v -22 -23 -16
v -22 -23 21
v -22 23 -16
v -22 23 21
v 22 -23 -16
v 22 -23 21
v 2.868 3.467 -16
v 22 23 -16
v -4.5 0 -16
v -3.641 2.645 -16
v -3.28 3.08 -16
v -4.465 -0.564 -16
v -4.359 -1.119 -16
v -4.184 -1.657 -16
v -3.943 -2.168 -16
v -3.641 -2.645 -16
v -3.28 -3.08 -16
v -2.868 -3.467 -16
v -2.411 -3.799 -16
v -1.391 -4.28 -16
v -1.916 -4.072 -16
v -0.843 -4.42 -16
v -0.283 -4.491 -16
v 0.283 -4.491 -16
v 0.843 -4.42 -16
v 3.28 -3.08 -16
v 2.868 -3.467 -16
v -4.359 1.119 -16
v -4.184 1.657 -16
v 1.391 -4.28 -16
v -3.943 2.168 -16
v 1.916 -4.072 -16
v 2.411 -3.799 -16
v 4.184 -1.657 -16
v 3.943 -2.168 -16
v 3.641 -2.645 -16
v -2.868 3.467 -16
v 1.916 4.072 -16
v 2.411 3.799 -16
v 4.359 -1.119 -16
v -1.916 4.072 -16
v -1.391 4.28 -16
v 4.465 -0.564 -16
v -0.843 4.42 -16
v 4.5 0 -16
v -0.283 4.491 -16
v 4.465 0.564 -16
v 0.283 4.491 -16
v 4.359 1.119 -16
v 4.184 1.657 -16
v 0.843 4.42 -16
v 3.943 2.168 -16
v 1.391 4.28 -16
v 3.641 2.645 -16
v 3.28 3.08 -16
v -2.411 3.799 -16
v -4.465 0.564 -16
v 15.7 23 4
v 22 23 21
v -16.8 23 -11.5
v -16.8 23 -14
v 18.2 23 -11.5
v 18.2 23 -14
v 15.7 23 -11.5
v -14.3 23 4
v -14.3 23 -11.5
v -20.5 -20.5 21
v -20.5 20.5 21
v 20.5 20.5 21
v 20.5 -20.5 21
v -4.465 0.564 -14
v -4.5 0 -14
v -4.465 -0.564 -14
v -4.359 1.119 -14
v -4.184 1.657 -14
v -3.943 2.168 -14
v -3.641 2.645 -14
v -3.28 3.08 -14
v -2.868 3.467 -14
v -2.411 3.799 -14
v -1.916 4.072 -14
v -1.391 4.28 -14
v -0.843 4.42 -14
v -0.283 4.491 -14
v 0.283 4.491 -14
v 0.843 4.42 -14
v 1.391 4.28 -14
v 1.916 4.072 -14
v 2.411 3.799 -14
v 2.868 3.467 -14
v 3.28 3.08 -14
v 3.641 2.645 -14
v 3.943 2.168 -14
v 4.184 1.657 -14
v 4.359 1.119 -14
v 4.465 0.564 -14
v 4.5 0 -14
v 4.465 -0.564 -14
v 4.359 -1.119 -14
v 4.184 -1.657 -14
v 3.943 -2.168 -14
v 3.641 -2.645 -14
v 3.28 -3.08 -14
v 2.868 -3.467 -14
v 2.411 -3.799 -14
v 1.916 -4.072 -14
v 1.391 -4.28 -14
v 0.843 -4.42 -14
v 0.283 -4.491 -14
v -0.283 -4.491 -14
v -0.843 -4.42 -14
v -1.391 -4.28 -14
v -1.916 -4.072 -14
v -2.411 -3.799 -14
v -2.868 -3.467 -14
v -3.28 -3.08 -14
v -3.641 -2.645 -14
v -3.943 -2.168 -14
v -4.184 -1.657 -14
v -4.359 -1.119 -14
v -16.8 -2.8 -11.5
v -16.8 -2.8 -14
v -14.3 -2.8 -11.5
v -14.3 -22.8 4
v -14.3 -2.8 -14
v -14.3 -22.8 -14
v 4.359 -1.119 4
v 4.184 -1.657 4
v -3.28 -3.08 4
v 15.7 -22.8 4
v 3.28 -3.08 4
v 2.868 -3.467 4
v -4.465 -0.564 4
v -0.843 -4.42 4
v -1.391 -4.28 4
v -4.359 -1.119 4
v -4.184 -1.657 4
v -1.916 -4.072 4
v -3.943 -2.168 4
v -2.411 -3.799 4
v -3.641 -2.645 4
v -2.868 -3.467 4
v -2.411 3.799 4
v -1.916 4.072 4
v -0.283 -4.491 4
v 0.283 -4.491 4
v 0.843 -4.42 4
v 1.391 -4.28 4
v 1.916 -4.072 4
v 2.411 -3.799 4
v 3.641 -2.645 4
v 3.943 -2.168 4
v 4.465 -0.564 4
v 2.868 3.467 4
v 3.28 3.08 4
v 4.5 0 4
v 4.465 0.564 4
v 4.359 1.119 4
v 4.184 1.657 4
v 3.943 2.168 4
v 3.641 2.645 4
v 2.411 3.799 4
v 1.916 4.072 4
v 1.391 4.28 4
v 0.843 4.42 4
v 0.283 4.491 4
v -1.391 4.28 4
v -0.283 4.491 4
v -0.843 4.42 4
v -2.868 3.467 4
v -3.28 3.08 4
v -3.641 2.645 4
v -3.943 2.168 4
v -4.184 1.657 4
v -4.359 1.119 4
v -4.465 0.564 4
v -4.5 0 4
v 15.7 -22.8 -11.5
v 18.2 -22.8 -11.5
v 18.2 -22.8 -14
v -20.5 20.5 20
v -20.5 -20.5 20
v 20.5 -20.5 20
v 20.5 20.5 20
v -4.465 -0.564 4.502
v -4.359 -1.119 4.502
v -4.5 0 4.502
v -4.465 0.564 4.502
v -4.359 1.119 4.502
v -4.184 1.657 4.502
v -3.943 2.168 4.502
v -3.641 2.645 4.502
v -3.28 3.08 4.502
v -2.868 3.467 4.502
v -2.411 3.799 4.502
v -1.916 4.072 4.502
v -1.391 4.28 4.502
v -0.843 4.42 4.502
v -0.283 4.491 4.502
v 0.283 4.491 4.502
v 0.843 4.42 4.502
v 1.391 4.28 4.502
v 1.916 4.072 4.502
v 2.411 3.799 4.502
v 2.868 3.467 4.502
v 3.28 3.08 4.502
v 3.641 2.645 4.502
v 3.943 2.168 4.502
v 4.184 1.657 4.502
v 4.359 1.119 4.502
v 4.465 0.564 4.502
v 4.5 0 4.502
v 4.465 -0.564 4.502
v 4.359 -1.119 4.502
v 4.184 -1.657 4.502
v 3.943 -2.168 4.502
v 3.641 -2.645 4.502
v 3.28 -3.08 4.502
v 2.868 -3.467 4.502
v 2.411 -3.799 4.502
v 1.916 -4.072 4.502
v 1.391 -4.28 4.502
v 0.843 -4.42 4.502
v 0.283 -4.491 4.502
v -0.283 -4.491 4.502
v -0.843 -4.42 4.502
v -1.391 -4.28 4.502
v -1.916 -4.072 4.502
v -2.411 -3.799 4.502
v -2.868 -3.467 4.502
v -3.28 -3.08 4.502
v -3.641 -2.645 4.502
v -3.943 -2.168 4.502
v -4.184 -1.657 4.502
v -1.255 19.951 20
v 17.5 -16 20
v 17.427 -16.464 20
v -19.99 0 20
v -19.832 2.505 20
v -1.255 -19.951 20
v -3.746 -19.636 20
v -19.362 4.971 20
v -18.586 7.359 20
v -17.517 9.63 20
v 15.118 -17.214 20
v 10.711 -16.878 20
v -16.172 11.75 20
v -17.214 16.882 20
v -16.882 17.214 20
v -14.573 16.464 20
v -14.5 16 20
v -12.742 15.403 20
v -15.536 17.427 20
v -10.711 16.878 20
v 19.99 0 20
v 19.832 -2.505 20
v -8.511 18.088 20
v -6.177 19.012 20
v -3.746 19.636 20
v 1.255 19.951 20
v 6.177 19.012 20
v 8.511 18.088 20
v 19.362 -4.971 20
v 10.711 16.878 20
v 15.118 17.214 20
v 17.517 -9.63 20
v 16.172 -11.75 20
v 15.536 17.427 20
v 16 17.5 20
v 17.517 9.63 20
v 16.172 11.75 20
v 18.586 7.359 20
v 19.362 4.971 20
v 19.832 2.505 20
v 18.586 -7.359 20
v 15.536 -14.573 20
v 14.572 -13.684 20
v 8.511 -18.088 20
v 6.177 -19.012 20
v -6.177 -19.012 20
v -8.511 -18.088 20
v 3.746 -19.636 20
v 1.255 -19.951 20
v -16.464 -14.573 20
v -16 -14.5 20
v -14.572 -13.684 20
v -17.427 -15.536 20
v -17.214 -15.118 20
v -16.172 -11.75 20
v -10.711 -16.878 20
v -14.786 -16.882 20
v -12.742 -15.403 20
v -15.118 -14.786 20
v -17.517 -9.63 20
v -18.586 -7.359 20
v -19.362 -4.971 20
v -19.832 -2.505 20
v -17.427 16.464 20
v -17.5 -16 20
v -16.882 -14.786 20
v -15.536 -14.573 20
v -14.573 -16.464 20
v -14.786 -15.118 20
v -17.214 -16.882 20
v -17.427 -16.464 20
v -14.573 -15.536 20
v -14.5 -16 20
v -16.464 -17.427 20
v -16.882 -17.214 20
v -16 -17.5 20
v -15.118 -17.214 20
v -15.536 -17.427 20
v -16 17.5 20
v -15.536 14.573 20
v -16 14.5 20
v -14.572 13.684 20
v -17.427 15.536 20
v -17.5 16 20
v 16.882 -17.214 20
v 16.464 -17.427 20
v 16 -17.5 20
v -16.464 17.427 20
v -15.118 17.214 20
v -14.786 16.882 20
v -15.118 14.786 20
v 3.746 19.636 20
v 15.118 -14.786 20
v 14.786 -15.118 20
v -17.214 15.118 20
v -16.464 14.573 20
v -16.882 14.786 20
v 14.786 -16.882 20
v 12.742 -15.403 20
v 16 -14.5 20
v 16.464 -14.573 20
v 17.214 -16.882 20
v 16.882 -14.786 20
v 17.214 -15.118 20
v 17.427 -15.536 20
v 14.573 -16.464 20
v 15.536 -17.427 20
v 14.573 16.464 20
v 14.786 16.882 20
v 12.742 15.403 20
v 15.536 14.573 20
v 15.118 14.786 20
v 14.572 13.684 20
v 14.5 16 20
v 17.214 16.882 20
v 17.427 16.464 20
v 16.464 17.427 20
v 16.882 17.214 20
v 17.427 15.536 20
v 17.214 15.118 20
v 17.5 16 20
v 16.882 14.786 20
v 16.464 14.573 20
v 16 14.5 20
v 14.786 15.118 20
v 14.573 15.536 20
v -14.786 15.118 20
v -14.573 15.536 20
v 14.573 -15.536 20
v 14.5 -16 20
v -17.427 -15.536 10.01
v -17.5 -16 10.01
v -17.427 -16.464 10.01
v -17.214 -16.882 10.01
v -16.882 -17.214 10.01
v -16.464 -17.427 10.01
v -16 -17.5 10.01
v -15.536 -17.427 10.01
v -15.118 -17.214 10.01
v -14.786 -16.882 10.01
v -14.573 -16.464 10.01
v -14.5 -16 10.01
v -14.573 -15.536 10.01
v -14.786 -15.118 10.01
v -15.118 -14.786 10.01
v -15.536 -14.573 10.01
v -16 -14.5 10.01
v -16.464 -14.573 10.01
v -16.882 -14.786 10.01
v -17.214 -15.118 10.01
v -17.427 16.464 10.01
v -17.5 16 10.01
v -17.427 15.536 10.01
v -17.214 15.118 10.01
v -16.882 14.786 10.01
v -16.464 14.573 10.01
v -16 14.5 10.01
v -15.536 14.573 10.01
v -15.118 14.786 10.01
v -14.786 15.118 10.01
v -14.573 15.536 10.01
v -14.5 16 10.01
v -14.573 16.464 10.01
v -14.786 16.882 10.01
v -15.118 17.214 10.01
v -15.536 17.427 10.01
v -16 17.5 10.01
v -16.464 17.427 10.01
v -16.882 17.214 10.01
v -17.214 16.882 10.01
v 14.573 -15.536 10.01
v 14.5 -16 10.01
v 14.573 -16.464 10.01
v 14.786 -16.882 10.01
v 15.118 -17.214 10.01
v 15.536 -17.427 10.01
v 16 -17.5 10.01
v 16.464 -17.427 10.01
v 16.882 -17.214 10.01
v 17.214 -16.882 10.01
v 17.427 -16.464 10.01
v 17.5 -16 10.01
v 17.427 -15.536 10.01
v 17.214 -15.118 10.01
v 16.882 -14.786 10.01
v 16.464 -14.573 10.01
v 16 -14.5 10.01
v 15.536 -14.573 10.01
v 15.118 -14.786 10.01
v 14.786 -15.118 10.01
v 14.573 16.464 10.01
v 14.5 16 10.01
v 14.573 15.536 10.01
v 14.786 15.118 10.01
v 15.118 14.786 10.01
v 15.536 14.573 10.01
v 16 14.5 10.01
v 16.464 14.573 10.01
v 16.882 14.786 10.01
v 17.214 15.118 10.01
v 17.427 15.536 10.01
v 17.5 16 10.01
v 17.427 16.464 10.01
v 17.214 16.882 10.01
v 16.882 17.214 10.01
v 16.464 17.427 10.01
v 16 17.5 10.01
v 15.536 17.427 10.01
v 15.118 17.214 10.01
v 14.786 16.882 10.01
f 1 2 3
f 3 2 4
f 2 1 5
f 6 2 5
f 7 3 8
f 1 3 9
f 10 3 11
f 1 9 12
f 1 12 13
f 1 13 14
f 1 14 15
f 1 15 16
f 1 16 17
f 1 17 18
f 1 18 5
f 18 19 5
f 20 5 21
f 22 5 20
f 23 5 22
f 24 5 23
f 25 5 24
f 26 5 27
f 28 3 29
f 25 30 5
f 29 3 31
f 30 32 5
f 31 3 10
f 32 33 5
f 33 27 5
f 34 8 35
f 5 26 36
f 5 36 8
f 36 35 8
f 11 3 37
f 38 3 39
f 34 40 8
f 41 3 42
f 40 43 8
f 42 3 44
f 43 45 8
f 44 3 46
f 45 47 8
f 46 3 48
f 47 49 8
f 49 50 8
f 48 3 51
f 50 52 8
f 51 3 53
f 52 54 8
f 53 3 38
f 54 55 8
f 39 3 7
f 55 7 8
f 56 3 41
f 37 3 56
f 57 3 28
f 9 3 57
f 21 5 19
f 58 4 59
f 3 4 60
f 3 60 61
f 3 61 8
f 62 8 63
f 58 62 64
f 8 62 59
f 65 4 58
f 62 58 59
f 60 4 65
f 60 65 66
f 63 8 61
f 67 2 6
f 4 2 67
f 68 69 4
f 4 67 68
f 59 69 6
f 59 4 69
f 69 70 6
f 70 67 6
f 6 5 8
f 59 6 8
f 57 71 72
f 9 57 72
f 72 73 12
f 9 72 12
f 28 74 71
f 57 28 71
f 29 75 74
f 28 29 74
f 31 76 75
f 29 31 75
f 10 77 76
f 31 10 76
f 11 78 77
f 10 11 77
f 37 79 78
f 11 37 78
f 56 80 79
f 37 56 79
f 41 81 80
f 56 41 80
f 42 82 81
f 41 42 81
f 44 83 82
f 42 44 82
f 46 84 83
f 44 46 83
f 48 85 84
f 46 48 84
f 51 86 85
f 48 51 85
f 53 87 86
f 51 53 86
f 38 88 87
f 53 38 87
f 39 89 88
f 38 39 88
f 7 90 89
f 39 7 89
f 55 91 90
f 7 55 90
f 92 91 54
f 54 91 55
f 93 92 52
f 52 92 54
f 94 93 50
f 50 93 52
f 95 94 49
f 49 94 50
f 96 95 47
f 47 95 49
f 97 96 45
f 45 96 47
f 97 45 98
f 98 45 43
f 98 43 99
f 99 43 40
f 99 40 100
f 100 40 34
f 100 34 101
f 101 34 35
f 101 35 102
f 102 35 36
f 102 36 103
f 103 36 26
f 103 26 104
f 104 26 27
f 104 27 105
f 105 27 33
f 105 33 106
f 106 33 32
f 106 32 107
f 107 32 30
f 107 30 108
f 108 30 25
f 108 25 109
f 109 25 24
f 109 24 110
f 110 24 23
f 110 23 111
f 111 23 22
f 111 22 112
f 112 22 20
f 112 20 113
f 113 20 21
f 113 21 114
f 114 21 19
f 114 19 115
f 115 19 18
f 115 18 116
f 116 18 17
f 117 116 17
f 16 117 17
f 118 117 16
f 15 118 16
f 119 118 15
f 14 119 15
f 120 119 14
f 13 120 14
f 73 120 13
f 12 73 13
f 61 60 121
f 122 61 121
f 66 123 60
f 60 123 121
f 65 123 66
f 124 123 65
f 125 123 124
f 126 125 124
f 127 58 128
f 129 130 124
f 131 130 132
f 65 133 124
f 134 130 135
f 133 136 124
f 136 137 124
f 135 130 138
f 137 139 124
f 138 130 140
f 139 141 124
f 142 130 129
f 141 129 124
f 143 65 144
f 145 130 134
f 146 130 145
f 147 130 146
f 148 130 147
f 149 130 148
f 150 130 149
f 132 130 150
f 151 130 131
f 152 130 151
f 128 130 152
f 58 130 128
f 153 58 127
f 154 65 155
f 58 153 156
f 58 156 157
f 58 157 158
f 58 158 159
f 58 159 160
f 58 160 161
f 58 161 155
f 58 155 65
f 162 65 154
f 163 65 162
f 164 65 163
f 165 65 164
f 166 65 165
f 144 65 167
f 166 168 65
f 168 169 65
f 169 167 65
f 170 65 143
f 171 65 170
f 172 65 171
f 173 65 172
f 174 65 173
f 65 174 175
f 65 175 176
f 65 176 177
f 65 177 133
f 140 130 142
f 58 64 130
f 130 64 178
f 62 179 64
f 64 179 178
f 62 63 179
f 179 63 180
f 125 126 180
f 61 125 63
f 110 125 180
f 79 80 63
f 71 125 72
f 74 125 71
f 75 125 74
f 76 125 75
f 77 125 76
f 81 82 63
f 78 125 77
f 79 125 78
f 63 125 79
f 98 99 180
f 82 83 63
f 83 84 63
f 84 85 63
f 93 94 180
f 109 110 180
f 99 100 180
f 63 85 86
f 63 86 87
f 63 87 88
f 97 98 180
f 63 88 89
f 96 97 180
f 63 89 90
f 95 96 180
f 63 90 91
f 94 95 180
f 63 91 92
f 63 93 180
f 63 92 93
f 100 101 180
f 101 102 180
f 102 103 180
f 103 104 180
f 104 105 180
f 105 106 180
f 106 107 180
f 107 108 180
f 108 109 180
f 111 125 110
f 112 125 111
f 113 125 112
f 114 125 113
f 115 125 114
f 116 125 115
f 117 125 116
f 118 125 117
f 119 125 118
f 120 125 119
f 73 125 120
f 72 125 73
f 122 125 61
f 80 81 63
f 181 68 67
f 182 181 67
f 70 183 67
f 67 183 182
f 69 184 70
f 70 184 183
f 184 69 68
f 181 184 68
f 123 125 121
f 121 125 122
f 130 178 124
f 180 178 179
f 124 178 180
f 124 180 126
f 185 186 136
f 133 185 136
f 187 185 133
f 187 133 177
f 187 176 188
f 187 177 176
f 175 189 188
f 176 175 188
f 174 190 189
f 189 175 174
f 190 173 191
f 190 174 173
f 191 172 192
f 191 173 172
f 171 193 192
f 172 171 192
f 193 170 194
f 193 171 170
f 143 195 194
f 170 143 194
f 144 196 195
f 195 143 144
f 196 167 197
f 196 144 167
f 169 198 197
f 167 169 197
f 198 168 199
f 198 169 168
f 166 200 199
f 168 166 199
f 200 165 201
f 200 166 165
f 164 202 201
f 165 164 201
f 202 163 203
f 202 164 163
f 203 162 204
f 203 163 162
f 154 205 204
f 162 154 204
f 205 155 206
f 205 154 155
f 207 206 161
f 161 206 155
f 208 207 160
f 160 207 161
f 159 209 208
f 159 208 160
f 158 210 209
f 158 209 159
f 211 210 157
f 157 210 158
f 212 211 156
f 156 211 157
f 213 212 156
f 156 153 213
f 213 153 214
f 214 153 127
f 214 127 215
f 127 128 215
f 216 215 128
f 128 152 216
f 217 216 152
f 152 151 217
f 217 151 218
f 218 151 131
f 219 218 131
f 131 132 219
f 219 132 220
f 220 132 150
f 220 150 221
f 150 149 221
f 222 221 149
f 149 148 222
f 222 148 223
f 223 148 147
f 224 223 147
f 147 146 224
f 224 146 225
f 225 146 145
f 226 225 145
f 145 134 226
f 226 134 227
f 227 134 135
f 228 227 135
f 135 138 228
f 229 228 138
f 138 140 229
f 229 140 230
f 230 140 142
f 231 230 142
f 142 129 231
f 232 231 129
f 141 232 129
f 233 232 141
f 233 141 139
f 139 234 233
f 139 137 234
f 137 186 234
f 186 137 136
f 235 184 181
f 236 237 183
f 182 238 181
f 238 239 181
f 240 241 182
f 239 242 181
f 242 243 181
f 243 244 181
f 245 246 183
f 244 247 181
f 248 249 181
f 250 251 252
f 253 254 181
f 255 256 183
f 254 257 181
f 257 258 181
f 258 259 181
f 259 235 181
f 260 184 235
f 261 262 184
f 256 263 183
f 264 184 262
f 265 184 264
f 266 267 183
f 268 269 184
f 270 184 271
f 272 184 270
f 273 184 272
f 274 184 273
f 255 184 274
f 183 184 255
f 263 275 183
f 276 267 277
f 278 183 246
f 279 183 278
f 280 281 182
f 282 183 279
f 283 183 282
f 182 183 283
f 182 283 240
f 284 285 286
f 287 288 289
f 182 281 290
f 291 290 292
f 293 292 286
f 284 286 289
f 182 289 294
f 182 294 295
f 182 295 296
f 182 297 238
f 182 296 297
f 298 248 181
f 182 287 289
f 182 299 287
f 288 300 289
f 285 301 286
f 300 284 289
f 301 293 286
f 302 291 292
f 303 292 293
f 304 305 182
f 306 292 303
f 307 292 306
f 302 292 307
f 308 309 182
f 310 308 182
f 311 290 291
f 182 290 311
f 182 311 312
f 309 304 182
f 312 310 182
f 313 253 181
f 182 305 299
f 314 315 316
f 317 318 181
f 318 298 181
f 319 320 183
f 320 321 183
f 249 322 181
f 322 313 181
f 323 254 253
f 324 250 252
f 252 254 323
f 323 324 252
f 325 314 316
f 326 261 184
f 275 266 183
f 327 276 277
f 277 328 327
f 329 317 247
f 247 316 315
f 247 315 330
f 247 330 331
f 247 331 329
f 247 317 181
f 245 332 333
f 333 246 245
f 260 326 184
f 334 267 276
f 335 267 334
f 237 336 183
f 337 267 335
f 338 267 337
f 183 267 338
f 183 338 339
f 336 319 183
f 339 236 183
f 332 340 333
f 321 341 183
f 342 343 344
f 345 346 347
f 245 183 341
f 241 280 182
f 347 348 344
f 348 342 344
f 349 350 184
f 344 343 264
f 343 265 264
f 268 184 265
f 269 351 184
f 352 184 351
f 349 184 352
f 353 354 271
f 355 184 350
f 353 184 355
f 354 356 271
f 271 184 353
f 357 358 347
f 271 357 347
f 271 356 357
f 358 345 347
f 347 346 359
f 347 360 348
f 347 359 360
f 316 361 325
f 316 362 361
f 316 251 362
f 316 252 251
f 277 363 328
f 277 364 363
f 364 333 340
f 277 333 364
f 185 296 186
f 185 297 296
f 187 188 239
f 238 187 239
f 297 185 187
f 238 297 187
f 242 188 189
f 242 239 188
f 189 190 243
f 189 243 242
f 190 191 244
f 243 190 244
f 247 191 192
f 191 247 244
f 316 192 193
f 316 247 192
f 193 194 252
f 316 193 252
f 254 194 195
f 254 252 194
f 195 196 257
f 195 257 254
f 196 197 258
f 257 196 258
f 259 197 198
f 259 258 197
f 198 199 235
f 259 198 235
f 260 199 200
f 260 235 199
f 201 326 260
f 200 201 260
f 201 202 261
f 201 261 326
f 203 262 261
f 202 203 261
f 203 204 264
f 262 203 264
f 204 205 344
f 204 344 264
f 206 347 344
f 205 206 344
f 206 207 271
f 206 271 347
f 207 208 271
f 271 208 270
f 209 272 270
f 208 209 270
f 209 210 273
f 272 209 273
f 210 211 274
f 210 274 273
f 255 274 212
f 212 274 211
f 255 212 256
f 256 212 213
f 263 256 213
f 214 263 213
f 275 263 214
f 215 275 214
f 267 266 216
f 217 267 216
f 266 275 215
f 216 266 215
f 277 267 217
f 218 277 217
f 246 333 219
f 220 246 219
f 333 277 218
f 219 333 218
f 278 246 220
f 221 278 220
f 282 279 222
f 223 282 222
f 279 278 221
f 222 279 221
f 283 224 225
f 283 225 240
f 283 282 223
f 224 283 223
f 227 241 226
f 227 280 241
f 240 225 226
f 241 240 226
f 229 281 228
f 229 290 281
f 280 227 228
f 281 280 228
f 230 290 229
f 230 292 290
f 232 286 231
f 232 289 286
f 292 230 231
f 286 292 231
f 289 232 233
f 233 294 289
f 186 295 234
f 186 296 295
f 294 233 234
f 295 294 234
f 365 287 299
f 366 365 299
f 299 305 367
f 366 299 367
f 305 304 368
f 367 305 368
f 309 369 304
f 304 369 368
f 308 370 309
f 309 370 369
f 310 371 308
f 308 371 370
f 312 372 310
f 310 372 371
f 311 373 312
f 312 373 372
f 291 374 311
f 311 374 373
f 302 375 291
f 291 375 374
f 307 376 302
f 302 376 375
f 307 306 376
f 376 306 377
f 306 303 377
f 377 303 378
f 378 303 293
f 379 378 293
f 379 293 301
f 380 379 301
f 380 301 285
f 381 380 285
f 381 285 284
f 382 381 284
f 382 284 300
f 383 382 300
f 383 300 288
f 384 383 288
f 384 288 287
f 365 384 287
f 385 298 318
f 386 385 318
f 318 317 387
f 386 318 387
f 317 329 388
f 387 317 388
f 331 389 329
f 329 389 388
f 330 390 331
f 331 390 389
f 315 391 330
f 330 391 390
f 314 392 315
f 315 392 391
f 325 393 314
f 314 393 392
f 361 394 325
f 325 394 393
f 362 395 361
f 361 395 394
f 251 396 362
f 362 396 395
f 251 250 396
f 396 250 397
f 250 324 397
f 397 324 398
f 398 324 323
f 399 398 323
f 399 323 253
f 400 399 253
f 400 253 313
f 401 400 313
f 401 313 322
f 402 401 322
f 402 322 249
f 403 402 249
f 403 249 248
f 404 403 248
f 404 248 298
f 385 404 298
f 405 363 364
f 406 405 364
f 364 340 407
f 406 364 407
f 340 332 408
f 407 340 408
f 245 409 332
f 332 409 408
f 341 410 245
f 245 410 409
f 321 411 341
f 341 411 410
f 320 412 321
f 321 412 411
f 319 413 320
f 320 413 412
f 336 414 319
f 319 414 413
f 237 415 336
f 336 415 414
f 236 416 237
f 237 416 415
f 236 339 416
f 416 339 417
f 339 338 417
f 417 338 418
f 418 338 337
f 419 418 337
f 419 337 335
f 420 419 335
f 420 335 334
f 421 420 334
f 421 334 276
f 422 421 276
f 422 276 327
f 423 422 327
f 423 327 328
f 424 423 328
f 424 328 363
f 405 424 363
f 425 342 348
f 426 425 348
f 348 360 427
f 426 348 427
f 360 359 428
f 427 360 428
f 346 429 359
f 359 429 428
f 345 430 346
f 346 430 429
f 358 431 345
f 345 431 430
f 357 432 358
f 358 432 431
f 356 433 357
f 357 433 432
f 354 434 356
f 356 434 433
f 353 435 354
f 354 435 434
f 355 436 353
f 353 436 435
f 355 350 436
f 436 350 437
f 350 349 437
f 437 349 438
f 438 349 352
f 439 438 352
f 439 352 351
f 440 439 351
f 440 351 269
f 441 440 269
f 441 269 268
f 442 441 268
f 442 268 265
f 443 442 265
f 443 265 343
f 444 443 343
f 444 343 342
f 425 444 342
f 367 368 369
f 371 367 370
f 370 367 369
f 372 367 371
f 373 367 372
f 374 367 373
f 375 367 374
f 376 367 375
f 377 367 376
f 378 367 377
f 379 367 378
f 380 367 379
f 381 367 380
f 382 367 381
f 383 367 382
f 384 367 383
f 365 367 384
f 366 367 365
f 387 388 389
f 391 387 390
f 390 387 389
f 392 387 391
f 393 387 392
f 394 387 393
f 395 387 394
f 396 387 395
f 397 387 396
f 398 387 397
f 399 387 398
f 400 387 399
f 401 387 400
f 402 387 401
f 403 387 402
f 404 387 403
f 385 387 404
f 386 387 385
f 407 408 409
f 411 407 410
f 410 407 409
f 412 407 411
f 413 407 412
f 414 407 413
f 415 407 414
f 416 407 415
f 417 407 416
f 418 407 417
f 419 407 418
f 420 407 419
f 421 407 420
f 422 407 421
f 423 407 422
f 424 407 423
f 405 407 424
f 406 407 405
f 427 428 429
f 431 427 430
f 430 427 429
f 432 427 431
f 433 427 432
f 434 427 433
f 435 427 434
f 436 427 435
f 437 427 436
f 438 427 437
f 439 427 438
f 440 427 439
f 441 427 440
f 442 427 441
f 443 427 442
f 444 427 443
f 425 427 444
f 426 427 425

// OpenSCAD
// https://www.sparkfun.com/datasheets/Sensors/gp2y1010au_e.pdf

difference () {
	translate([-22,-23,-16]) cube ([44,46,37]);
	translate([-20.5,-20.5,20]) cube ([41,41,10.1]);
	translate([0,0,-40]) cylinder(80,4.5,4.5,10, $fn=50);
	translate([0,0,0]) cylinder(20.01,0,20,0, $fn=50);

	translate([0.7,-22.8,-5]) difference() {
		union() {
			translate([-15,0,-9]) cube([30,60,18]);
			translate([-17.5,20,-9]) cube([35,40,2.5]);
			translate([-15,0,-9]) cube([32.5,60,2.5]);
		}
//		translate([-0.7,22.8,-15]) cylinder(30,4.5,4.5,10, $fn=50);
	}
	translate([16,16,10.01]) cylinder(10, 1.5, 1.5, 10, $fn = 20);
	translate([-16,16,10.01]) cylinder(10, 1.5, 1.5, 10, $fn = 20);
	translate([16,-16,10.01]) cylinder(10, 1.5, 1.5, 10, $fn = 20);
	translate([-16,-16,10.01]) cylinder(10, 1.5, 1.5, 10, $fn = 20);
}
